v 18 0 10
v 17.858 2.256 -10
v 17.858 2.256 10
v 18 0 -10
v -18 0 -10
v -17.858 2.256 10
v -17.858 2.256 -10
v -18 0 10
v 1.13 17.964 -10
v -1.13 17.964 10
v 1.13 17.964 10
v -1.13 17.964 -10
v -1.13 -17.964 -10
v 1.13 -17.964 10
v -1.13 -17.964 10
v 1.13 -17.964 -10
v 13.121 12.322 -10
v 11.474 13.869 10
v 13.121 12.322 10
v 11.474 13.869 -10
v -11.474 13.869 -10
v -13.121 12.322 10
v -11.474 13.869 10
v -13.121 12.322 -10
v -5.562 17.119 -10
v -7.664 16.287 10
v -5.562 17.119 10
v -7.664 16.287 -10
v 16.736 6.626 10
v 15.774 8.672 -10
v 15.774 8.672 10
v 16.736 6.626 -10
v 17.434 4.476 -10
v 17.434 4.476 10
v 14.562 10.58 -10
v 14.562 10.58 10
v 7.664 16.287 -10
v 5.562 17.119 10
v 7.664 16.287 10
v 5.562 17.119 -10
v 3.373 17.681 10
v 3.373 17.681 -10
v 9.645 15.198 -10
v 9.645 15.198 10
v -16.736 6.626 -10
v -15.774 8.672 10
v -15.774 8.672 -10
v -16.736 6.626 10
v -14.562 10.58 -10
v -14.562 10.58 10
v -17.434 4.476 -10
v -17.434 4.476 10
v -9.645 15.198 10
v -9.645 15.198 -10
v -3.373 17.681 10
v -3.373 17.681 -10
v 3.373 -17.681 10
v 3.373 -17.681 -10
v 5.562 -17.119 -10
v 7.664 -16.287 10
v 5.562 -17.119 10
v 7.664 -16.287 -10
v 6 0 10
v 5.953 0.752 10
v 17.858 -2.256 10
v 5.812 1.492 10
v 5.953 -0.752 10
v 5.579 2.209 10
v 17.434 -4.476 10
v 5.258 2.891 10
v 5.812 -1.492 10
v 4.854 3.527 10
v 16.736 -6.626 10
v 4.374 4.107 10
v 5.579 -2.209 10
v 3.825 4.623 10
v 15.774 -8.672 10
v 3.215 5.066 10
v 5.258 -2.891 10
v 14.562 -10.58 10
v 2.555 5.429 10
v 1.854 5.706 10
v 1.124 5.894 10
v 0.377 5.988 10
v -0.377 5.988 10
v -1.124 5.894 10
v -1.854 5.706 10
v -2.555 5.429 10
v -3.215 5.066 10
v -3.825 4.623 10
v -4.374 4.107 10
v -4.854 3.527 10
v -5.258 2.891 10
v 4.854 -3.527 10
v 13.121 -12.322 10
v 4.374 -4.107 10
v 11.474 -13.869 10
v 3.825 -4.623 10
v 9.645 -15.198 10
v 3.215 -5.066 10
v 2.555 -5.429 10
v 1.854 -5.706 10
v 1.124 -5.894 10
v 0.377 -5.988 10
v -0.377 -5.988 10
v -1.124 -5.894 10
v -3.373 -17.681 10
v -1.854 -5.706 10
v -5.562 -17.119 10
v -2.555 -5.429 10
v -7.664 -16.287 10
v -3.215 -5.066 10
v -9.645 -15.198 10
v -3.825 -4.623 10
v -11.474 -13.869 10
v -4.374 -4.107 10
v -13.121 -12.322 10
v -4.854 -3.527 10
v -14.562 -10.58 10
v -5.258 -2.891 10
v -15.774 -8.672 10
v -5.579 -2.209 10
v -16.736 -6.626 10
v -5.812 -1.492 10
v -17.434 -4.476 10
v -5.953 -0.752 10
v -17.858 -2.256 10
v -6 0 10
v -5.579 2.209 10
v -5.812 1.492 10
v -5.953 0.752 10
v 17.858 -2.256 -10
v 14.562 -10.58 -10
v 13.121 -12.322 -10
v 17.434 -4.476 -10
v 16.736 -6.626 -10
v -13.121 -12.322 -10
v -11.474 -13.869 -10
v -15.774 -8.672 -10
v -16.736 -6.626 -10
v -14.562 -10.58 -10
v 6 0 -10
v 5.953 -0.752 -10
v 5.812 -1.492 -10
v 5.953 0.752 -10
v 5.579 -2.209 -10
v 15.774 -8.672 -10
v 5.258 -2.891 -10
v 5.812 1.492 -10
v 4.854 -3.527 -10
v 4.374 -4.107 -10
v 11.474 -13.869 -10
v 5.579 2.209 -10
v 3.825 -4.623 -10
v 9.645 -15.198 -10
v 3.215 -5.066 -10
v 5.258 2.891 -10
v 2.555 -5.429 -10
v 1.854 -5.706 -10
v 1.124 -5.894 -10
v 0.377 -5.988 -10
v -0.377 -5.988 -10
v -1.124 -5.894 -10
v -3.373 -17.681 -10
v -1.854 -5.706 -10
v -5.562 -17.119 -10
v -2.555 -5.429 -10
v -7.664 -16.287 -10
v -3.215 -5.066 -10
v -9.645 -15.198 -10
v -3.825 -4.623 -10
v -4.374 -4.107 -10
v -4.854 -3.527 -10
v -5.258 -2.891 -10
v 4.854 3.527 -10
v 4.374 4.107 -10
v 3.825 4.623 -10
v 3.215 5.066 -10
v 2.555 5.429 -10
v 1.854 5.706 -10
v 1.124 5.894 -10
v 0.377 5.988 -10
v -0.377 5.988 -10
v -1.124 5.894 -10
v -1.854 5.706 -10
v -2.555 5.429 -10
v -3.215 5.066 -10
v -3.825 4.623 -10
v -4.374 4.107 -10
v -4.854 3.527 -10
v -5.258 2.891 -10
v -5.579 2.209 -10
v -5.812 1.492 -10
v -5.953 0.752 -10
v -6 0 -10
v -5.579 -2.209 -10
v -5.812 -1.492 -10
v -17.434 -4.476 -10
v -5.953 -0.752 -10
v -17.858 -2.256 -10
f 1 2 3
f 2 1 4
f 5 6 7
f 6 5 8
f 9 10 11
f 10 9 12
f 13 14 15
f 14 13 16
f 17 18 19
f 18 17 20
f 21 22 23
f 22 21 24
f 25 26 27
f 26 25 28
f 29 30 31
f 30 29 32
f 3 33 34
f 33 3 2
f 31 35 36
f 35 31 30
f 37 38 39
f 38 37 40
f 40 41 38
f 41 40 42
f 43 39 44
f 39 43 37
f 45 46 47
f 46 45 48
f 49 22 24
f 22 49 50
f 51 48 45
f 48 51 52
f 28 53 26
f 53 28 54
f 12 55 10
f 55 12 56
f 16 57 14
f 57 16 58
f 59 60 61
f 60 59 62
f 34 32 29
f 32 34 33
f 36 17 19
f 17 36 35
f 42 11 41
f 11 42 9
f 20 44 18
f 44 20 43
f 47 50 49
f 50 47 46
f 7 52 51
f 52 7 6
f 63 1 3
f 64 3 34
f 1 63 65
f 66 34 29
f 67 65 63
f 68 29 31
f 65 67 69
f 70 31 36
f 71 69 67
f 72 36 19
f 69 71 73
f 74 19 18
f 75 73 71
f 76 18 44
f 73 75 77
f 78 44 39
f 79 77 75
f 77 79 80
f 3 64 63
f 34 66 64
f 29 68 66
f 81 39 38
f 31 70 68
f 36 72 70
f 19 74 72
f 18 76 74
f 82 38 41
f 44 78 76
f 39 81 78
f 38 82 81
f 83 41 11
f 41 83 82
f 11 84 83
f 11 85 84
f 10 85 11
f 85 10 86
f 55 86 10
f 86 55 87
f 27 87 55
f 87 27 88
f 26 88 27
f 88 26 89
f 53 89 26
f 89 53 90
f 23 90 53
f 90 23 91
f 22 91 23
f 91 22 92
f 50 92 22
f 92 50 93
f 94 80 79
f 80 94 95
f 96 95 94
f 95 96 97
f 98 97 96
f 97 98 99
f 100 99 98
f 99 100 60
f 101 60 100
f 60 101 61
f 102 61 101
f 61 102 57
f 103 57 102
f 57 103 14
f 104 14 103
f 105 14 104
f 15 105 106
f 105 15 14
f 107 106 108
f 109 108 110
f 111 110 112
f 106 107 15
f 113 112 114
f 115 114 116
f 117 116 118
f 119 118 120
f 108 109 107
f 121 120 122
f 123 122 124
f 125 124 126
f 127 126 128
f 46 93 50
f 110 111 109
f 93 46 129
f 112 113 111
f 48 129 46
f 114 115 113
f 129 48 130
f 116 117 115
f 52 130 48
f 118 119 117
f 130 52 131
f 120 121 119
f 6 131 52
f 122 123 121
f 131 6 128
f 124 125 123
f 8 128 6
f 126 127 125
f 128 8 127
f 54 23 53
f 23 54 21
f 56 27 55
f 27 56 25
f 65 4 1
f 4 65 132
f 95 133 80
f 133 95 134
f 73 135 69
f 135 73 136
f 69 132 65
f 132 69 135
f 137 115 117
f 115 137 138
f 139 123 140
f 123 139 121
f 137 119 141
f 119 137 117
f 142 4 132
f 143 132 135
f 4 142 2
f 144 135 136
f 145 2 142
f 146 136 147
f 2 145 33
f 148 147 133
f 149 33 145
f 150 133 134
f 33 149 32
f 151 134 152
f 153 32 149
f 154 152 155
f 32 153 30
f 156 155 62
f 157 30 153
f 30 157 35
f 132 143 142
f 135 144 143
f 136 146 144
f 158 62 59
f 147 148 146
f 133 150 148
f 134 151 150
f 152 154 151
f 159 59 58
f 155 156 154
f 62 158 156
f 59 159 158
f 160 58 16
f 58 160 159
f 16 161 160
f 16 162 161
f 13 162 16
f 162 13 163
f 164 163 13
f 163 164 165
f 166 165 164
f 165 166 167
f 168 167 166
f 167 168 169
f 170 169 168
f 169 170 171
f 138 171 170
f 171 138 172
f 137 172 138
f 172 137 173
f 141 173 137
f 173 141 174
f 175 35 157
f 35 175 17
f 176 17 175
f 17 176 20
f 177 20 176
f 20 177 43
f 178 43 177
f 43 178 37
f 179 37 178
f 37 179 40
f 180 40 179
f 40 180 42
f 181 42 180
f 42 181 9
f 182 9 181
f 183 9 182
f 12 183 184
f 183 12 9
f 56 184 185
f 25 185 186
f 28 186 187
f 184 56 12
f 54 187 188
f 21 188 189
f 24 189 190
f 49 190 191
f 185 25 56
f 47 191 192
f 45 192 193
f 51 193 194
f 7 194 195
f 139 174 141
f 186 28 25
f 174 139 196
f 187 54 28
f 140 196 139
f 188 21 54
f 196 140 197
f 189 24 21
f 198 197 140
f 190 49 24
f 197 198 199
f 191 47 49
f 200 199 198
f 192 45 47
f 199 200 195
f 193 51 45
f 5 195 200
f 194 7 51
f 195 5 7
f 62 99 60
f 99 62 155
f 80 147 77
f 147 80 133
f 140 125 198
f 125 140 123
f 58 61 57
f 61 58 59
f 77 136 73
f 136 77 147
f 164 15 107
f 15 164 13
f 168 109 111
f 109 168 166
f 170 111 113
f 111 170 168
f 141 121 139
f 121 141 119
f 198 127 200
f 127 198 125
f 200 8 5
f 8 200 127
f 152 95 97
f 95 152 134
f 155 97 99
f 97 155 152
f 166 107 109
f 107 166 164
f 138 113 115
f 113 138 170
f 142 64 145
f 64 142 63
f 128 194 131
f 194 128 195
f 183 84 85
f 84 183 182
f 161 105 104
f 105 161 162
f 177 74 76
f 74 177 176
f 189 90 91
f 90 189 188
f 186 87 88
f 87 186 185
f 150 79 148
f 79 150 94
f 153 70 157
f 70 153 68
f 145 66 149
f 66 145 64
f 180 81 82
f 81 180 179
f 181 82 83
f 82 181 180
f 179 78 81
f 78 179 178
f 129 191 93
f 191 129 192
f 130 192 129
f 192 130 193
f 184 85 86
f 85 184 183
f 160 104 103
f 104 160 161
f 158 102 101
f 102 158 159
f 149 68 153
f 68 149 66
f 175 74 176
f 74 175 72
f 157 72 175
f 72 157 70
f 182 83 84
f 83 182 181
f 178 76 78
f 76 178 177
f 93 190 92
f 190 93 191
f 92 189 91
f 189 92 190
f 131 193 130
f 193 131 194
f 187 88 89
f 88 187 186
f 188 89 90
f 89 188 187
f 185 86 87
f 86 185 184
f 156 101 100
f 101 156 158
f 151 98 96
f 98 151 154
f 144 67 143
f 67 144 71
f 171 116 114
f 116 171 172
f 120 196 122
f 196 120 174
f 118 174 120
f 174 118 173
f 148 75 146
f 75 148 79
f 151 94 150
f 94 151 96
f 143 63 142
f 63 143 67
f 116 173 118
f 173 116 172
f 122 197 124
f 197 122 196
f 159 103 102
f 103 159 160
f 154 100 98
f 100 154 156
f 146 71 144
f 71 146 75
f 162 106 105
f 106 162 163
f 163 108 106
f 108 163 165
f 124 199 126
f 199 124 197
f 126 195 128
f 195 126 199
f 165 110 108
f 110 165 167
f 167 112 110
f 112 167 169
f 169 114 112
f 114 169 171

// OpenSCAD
$fn = 50;


difference() {
	union() {
		translate(v = [0, 0, -10.0000000000]) {
			cylinder(h = 20, r = 18.0000000000);
		}
	}
	union() {
		translate(v = [0, 0, -100.0000000000]) {
			cylinder(h = 200, r = 6);
		}
	}
}
